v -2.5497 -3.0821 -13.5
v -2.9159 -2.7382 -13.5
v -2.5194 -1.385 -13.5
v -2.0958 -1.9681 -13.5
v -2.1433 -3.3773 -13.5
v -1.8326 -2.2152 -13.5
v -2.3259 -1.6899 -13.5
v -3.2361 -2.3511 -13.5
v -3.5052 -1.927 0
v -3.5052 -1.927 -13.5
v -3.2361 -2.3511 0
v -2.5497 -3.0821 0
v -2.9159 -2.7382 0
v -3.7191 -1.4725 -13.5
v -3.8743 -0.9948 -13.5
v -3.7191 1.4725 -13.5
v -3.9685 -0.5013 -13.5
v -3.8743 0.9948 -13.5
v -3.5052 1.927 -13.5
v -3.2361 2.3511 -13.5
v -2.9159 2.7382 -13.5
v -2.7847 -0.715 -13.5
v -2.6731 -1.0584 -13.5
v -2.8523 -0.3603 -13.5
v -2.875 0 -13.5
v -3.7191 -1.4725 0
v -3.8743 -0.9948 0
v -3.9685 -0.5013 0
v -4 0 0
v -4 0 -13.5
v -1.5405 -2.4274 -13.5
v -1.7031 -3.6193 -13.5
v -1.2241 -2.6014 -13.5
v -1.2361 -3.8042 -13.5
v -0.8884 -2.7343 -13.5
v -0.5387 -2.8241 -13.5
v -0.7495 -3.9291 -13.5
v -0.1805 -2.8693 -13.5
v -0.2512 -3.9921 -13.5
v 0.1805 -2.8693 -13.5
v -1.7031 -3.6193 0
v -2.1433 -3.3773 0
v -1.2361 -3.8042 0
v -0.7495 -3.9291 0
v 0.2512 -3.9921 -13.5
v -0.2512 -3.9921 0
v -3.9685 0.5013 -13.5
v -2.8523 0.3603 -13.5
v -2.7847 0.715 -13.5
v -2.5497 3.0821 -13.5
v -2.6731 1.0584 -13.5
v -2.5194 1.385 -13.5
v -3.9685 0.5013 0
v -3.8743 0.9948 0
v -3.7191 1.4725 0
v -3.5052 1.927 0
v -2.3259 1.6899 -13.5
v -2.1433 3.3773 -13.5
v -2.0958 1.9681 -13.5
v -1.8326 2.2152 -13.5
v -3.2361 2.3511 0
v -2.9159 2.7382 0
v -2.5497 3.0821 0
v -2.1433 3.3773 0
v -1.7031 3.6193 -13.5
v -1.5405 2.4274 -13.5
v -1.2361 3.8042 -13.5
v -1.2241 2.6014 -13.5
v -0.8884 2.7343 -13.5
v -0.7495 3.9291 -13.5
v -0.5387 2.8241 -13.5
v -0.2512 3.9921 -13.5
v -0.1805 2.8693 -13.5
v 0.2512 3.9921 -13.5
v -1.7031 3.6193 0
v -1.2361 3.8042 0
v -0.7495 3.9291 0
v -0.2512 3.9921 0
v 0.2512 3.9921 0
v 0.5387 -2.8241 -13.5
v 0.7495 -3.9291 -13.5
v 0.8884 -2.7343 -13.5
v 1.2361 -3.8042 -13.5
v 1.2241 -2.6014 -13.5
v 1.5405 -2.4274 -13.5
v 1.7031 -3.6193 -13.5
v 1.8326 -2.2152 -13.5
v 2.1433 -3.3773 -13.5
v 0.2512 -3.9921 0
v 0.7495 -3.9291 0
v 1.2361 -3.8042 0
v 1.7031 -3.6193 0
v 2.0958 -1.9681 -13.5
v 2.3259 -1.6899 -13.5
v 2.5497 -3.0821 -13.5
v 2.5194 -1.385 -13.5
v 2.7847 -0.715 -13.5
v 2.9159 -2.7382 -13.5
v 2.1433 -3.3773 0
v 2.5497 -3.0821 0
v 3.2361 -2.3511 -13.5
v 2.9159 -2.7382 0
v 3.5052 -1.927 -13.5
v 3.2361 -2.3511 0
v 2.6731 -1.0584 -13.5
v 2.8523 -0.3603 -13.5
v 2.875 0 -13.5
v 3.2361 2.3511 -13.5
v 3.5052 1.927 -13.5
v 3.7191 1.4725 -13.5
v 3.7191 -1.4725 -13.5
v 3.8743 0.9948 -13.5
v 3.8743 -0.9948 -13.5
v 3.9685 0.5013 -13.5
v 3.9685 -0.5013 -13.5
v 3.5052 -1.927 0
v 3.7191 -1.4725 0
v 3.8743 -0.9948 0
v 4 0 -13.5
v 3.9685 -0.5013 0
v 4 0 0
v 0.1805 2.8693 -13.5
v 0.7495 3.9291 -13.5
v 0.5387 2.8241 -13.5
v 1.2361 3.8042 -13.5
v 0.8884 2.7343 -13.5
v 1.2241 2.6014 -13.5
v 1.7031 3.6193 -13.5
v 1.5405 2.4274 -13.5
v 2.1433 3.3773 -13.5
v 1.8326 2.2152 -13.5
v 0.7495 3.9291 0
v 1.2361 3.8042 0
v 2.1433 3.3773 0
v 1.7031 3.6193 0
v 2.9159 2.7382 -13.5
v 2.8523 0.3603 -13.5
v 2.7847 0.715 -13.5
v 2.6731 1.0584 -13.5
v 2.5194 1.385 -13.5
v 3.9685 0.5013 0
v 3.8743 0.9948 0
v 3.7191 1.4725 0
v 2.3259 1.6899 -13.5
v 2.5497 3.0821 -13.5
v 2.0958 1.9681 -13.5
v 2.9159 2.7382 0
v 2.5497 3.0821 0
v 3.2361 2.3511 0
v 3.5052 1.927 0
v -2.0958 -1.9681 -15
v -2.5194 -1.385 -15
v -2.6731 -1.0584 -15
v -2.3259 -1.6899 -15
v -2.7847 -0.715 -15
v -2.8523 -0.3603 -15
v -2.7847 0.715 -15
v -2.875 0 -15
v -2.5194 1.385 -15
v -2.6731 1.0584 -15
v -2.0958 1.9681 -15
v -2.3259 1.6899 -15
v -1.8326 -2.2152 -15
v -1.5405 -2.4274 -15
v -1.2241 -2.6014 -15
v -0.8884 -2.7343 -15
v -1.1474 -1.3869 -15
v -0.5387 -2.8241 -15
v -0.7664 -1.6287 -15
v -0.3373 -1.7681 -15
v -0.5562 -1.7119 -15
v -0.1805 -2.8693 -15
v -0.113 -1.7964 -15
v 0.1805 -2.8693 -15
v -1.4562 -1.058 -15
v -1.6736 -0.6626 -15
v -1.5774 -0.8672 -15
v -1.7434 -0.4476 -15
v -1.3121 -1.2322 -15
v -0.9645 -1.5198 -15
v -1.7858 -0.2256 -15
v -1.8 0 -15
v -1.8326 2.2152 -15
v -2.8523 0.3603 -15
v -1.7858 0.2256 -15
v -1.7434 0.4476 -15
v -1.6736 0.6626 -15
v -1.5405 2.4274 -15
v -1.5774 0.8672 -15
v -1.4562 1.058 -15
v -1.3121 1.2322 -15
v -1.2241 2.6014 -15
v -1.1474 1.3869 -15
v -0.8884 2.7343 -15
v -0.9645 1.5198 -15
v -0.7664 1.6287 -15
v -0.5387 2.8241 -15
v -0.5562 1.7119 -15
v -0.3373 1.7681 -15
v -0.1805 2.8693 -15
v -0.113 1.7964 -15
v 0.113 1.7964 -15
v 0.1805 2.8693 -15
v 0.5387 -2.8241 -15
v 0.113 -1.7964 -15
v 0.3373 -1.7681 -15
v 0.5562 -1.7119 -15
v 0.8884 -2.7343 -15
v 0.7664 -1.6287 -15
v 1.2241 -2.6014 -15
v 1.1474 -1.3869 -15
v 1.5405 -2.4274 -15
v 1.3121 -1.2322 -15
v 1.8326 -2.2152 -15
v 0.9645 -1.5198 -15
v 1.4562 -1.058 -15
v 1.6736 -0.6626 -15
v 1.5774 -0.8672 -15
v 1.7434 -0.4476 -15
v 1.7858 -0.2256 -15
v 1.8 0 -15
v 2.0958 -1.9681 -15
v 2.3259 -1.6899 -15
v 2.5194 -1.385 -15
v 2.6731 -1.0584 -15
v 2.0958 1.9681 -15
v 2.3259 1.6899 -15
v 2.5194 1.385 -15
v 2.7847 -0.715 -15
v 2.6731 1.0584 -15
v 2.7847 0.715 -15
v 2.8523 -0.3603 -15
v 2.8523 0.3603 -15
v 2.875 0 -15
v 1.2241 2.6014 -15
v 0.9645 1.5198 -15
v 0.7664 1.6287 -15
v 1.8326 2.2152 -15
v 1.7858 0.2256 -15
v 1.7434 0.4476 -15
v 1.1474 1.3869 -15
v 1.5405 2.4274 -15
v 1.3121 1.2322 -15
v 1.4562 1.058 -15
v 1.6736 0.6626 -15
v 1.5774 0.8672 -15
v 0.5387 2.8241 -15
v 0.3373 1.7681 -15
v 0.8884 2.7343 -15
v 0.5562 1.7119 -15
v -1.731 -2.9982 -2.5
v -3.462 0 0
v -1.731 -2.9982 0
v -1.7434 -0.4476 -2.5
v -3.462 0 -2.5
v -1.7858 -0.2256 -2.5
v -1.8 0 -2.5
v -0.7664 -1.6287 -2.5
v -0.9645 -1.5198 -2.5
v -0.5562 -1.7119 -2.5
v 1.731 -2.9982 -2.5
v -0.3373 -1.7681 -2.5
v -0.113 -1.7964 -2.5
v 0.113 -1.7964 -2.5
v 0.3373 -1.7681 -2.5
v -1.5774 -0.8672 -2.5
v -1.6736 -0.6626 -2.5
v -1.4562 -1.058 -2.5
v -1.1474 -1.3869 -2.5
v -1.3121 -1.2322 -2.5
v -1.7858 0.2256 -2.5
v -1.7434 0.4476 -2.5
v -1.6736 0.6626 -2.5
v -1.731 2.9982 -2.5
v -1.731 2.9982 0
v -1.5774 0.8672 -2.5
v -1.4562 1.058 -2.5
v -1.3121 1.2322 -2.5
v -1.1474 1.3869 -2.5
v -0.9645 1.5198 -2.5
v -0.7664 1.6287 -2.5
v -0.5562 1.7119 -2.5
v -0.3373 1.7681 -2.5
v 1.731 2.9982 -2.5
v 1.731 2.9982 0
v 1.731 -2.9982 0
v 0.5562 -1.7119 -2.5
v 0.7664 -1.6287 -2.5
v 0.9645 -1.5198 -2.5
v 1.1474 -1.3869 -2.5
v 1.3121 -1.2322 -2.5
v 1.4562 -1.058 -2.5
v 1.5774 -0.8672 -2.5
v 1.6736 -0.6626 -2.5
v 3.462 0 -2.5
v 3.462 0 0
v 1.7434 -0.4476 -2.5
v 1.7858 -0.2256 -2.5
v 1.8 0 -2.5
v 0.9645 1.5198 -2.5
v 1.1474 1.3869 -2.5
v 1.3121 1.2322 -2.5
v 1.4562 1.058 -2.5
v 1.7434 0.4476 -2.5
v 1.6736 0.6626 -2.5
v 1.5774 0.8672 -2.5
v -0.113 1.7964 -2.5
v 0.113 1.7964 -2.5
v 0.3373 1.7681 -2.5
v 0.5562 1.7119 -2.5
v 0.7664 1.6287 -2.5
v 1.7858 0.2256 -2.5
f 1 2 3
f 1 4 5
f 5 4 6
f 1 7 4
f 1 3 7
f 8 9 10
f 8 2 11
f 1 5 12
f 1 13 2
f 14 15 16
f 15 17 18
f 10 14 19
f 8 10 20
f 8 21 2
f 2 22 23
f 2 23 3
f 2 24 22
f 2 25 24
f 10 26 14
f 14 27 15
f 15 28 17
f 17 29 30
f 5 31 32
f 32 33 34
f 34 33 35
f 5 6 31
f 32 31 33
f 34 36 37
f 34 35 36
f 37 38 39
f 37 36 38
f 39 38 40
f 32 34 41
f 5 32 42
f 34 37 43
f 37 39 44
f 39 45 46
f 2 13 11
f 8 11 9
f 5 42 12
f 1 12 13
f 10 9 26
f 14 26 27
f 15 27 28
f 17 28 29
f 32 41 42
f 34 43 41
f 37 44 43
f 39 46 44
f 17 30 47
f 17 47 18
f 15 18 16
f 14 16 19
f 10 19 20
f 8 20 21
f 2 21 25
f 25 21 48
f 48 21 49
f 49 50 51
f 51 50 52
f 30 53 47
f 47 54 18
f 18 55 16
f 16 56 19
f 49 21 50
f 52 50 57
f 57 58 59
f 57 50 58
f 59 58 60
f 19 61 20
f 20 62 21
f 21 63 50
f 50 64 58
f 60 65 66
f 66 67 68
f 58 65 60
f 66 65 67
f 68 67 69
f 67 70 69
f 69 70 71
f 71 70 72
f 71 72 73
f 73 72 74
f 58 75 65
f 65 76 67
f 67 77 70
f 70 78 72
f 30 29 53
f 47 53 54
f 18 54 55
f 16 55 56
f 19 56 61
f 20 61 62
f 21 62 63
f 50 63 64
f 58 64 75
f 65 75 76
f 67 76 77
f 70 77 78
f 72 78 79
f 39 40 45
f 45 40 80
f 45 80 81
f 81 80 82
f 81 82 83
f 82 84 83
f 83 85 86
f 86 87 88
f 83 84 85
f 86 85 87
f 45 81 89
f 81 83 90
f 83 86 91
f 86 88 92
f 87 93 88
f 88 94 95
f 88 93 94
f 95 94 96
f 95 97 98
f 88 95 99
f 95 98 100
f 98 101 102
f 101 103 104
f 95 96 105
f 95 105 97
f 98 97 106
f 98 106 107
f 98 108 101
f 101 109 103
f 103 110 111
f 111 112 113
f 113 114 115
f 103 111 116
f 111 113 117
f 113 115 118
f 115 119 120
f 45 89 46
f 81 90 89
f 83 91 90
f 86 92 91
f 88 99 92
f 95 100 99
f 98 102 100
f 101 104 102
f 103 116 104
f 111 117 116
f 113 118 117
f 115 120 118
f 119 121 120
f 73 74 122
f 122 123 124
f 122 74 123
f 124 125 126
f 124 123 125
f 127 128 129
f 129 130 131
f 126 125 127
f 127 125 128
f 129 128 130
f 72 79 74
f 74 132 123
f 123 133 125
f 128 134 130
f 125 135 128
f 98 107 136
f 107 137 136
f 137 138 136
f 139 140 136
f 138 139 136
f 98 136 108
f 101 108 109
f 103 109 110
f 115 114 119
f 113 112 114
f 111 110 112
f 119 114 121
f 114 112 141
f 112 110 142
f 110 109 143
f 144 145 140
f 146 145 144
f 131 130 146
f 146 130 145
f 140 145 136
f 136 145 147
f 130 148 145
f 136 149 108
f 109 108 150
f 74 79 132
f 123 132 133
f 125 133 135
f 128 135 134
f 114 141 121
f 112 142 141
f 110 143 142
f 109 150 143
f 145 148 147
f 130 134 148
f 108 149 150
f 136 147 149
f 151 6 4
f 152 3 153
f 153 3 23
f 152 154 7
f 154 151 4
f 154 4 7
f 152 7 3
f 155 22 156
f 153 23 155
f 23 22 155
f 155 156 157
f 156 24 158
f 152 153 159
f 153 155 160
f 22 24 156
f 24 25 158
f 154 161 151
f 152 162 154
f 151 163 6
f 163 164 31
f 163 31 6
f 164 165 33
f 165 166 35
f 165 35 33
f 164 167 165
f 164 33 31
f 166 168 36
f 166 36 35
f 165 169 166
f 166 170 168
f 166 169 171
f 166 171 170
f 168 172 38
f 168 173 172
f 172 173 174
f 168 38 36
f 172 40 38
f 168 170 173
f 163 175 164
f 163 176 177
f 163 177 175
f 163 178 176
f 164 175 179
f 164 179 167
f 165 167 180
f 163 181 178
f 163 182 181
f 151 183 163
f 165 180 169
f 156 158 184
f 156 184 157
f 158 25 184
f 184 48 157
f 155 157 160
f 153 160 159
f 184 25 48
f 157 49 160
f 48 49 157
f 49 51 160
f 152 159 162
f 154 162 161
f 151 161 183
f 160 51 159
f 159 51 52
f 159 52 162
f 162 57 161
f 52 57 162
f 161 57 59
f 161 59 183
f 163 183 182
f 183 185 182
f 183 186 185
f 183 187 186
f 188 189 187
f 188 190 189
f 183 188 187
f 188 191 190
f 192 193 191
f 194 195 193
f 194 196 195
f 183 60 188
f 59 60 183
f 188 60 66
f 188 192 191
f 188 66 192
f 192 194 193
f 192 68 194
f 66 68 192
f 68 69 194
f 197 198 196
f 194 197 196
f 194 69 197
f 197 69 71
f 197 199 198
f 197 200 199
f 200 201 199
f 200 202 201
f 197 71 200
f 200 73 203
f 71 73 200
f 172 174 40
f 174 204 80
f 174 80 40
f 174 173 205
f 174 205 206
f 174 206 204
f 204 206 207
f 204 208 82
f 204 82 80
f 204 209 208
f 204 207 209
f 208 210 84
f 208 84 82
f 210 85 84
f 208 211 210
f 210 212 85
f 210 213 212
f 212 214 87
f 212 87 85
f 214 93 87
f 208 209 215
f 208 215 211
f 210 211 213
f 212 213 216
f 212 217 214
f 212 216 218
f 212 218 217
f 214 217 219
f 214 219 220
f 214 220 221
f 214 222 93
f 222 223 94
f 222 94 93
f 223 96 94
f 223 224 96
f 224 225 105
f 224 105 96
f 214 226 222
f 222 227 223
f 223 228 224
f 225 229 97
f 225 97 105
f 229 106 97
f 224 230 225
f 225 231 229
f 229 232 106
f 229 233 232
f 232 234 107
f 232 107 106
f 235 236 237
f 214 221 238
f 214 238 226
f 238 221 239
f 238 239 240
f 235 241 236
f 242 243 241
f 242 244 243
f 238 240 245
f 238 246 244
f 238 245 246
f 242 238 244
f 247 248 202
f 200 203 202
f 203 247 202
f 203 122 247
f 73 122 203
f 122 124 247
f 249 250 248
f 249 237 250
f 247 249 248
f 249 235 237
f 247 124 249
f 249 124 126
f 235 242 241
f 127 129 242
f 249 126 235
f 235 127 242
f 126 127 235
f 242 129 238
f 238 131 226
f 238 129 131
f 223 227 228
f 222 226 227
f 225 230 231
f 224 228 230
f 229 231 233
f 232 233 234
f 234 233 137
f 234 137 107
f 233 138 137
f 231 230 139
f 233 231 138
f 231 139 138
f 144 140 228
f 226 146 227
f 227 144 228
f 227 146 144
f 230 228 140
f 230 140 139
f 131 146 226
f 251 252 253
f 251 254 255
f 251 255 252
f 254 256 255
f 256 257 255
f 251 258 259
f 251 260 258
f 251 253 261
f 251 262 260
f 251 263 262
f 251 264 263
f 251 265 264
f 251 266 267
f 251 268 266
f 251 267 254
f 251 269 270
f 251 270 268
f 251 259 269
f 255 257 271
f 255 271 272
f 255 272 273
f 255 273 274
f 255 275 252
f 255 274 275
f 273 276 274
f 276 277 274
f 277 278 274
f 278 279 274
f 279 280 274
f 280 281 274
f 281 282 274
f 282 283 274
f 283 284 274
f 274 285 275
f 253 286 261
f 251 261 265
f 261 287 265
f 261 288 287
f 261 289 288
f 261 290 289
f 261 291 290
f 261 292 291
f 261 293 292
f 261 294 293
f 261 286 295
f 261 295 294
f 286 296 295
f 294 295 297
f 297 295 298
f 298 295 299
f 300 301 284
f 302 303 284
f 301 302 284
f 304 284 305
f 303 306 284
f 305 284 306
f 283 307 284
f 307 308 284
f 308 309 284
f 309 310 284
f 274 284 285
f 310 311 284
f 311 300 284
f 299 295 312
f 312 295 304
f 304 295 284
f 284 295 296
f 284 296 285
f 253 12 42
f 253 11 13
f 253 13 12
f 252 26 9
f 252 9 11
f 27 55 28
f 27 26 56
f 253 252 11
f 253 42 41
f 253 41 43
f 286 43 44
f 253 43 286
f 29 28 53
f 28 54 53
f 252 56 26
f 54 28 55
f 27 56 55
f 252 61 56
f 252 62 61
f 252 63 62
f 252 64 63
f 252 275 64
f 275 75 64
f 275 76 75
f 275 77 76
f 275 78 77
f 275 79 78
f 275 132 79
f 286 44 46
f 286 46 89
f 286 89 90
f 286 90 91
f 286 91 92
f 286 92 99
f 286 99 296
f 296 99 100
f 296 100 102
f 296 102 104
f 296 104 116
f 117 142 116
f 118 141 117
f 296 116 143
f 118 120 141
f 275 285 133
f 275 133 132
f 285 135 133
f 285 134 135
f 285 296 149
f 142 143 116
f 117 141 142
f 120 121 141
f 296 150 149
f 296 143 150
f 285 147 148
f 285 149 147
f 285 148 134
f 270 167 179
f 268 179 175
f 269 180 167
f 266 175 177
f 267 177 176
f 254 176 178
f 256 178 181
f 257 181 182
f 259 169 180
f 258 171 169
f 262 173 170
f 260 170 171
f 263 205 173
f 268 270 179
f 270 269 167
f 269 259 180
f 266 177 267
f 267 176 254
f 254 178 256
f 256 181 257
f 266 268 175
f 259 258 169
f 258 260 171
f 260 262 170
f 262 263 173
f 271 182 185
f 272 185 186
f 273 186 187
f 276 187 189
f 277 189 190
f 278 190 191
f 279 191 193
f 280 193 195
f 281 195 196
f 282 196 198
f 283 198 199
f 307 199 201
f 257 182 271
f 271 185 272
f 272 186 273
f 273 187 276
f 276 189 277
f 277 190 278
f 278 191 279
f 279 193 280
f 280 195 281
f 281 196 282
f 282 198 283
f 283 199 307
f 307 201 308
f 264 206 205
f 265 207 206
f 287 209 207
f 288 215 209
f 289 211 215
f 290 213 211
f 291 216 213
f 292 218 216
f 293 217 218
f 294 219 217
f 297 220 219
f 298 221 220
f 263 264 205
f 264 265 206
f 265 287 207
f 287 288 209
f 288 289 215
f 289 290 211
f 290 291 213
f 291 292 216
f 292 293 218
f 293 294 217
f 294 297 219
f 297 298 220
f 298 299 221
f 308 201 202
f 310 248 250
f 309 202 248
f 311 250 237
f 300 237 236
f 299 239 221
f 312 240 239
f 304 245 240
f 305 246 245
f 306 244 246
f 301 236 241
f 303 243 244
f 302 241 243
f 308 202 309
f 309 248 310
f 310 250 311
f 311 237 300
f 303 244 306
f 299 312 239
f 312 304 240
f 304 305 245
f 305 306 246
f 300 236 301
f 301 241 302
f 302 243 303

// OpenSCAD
$fn = 50;

difference() {
	union() {
		translate(v = [0, 0, -13.5]) {
			cylinder(h = 16.5, r = 4.0);
		}
		#translate(v = [0, 0, -15.0]) {
			cylinder(h = 15, r = 2.875);
		}
	}
	union() {
		translate(v = [0, 0, 0]) {
			rotate(a = [0, 0, 0]) {
				difference() {
					union() {
						translate(v = [0, 0, -2.5]) {
							linear_extrude(height = 2.5) {
								polygon(points = [[3.4619999999999997, 0.0], [1.7310000000000003, 2.9981799479017264], [-1.7309999999999992, 2.9981799479017264], [-3.4619999999999997, 4.2397272186481365e-16], [-1.7310000000000014, -2.998179947901726], [1.7309999999999977, -2.9981799479017277]]);
							}
						}
					}
					union();
				}
			}
		}
		#cylinder(h = 3, r = 5.0);
		#translate(v = [0, 0, -100.0]) {
			cylinder(h = 200, r = 1.8);
		}
	}
}
